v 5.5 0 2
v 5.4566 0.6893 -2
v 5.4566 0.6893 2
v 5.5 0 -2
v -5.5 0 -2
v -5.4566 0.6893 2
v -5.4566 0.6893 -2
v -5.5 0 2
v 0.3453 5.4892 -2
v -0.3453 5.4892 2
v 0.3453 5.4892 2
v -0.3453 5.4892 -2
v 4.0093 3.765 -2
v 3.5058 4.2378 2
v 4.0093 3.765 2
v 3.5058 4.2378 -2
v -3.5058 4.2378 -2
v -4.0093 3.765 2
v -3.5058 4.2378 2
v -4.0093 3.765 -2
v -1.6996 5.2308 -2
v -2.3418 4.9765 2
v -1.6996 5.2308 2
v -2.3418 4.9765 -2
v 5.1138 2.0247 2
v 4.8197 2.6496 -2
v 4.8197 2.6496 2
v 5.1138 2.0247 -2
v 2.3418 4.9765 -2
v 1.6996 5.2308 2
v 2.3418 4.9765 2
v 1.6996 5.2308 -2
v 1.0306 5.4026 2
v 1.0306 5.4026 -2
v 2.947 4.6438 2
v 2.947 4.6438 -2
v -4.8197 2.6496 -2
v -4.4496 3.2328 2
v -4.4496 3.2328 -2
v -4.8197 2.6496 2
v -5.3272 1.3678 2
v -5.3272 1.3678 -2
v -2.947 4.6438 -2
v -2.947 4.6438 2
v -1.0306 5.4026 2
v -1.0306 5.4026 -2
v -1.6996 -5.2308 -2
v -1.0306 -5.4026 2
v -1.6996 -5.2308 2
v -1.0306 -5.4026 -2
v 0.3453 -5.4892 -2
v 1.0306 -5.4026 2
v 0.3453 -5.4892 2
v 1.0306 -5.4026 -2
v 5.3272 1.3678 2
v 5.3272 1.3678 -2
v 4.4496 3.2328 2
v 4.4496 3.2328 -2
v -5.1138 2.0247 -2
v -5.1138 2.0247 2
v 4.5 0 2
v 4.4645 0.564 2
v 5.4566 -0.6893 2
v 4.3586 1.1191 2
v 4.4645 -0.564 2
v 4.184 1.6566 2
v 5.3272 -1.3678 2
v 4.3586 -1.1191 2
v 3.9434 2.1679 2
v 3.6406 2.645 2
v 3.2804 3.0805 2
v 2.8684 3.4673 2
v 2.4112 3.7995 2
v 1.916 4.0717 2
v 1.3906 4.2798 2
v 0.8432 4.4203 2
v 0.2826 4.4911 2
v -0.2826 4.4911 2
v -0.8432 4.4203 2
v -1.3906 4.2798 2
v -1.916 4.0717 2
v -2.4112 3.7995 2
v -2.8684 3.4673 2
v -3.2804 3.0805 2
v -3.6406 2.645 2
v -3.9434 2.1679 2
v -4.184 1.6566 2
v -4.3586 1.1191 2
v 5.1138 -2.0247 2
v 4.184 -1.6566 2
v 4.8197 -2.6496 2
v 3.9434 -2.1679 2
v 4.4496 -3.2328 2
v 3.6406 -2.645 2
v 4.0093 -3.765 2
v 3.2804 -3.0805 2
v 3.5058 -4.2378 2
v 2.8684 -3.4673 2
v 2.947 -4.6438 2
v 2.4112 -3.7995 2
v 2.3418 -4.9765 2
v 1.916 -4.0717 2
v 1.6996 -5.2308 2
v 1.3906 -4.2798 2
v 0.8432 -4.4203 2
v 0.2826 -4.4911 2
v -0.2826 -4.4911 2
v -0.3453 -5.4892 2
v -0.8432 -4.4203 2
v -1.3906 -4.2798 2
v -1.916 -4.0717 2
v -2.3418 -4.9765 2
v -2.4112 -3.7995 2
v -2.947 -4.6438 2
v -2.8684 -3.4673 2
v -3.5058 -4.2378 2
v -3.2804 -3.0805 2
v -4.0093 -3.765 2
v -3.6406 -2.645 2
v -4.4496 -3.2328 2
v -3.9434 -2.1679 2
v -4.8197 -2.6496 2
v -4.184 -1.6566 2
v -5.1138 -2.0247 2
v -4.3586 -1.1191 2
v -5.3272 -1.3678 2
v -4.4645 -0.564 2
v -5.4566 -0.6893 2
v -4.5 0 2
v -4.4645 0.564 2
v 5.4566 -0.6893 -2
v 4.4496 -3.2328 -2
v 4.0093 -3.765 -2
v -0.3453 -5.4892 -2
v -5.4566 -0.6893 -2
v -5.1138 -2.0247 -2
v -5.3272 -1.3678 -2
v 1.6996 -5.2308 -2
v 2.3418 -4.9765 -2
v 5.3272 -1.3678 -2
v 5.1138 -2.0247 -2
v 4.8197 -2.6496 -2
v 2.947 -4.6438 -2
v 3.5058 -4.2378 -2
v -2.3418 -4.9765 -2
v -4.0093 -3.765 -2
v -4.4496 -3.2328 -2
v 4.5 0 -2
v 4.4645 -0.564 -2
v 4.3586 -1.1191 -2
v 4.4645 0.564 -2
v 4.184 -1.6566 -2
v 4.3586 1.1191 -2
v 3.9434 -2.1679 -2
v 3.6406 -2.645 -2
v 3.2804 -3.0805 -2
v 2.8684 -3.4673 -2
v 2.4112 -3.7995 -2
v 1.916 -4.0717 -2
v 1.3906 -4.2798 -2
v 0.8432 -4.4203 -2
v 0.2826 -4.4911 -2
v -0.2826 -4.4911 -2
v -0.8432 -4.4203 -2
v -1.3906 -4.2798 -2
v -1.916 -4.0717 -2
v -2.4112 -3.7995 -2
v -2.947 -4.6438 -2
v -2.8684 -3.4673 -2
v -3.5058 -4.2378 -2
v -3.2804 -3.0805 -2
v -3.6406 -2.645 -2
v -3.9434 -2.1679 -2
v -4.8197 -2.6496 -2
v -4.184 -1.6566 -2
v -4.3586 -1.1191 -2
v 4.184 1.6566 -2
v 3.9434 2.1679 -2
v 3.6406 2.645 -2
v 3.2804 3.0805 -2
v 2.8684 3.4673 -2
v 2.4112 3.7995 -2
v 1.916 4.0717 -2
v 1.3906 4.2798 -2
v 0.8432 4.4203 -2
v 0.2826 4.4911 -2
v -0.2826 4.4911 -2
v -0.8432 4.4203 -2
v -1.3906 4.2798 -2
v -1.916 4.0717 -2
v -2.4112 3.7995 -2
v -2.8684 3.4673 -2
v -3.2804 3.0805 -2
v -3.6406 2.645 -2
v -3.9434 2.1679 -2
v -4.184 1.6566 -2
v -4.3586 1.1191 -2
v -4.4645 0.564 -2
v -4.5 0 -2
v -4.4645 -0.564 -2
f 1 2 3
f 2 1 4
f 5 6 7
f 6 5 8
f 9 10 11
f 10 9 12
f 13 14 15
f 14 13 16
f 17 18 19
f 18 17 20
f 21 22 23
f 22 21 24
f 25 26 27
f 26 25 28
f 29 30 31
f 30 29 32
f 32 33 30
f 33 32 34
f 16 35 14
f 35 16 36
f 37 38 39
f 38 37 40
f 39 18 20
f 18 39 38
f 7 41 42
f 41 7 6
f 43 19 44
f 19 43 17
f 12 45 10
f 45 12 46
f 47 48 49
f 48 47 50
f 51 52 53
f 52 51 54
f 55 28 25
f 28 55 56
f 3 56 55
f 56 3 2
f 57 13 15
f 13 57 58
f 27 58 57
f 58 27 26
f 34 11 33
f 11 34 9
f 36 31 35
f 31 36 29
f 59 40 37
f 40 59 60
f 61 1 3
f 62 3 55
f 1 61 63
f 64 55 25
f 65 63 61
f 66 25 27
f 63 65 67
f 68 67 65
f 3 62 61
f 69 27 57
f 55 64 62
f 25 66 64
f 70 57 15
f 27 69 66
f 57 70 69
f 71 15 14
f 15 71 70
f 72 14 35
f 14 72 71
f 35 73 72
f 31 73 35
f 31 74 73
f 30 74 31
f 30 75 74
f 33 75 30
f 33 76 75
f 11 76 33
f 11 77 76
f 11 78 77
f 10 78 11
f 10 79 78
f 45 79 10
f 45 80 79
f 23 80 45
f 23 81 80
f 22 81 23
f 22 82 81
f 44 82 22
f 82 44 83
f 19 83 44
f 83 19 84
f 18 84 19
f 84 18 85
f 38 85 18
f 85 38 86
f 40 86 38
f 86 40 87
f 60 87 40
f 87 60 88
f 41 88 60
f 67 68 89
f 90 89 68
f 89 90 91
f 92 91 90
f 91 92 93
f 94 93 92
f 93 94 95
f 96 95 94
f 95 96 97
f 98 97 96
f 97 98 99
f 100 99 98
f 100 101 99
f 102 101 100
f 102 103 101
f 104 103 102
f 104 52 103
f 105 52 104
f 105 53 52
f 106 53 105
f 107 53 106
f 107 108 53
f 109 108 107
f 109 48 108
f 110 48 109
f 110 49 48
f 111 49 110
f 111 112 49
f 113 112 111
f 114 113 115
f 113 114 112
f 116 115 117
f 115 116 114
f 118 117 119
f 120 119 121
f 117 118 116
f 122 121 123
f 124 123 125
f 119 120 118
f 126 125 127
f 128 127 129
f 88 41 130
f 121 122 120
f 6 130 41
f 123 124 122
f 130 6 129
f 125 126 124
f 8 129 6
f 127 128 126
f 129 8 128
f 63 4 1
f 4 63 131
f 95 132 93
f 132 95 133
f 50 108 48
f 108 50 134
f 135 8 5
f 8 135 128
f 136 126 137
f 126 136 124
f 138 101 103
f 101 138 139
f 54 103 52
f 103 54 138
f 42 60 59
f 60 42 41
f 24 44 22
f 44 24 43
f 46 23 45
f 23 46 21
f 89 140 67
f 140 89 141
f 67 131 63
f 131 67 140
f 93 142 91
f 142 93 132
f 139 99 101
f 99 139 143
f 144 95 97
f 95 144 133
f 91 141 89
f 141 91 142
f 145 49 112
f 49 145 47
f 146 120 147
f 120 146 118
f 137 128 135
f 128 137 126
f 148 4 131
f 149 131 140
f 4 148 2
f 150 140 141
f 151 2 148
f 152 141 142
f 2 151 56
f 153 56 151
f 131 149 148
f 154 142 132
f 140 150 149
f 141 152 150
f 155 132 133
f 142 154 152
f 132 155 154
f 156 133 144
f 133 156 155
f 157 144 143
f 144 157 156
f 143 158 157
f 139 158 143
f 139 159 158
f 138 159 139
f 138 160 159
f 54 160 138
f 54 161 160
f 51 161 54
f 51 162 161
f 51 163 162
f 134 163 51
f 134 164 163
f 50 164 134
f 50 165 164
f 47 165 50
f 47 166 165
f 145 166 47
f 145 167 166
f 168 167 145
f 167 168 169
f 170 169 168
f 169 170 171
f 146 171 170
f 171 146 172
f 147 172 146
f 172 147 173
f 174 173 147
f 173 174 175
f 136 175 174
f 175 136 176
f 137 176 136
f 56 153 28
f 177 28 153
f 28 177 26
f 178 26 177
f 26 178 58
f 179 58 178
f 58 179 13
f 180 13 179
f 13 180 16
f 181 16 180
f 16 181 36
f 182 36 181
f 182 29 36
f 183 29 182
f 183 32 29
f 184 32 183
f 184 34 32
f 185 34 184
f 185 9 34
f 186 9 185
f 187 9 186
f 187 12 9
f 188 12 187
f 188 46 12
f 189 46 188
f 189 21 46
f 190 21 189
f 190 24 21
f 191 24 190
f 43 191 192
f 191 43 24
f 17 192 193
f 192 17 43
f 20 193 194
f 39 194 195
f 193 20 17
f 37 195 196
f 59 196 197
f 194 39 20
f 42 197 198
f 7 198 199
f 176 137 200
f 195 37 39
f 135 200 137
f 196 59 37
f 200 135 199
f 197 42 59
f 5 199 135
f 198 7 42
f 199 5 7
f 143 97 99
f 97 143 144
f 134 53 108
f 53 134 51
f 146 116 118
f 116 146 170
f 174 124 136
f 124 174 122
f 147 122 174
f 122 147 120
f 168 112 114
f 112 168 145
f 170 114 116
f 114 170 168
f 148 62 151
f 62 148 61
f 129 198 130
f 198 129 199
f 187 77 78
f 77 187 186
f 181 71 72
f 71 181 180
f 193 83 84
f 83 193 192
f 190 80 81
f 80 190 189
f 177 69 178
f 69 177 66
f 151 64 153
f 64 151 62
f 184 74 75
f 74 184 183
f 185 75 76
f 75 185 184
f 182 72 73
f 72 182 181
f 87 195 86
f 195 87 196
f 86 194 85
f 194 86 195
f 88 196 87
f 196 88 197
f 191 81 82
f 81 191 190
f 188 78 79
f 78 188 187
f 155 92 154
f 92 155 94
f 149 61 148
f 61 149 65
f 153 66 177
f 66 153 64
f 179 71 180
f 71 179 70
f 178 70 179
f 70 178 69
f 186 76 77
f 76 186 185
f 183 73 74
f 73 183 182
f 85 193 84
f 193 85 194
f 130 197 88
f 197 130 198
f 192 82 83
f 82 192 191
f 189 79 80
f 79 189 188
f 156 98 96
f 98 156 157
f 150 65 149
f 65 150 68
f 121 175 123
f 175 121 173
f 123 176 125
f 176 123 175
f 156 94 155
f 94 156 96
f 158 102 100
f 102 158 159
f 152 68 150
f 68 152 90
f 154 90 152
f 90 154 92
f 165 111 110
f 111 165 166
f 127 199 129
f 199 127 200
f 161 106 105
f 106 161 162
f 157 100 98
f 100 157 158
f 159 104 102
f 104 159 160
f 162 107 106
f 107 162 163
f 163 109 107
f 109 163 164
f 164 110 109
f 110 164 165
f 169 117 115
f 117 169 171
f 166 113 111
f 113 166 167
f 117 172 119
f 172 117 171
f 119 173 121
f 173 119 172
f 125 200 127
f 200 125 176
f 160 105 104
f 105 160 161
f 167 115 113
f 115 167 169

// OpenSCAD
$fn = 50;


difference() {
	union() {
		translate(v = [0, 0, -2.0000000000]) {
			cylinder(h = 4, r = 5.5000000000);
		}
	}
	union() {
		translate(v = [0, 0, -100.0000000000]) {
			cylinder(h = 200, r = 4.5000000000);
		}
	}
}
